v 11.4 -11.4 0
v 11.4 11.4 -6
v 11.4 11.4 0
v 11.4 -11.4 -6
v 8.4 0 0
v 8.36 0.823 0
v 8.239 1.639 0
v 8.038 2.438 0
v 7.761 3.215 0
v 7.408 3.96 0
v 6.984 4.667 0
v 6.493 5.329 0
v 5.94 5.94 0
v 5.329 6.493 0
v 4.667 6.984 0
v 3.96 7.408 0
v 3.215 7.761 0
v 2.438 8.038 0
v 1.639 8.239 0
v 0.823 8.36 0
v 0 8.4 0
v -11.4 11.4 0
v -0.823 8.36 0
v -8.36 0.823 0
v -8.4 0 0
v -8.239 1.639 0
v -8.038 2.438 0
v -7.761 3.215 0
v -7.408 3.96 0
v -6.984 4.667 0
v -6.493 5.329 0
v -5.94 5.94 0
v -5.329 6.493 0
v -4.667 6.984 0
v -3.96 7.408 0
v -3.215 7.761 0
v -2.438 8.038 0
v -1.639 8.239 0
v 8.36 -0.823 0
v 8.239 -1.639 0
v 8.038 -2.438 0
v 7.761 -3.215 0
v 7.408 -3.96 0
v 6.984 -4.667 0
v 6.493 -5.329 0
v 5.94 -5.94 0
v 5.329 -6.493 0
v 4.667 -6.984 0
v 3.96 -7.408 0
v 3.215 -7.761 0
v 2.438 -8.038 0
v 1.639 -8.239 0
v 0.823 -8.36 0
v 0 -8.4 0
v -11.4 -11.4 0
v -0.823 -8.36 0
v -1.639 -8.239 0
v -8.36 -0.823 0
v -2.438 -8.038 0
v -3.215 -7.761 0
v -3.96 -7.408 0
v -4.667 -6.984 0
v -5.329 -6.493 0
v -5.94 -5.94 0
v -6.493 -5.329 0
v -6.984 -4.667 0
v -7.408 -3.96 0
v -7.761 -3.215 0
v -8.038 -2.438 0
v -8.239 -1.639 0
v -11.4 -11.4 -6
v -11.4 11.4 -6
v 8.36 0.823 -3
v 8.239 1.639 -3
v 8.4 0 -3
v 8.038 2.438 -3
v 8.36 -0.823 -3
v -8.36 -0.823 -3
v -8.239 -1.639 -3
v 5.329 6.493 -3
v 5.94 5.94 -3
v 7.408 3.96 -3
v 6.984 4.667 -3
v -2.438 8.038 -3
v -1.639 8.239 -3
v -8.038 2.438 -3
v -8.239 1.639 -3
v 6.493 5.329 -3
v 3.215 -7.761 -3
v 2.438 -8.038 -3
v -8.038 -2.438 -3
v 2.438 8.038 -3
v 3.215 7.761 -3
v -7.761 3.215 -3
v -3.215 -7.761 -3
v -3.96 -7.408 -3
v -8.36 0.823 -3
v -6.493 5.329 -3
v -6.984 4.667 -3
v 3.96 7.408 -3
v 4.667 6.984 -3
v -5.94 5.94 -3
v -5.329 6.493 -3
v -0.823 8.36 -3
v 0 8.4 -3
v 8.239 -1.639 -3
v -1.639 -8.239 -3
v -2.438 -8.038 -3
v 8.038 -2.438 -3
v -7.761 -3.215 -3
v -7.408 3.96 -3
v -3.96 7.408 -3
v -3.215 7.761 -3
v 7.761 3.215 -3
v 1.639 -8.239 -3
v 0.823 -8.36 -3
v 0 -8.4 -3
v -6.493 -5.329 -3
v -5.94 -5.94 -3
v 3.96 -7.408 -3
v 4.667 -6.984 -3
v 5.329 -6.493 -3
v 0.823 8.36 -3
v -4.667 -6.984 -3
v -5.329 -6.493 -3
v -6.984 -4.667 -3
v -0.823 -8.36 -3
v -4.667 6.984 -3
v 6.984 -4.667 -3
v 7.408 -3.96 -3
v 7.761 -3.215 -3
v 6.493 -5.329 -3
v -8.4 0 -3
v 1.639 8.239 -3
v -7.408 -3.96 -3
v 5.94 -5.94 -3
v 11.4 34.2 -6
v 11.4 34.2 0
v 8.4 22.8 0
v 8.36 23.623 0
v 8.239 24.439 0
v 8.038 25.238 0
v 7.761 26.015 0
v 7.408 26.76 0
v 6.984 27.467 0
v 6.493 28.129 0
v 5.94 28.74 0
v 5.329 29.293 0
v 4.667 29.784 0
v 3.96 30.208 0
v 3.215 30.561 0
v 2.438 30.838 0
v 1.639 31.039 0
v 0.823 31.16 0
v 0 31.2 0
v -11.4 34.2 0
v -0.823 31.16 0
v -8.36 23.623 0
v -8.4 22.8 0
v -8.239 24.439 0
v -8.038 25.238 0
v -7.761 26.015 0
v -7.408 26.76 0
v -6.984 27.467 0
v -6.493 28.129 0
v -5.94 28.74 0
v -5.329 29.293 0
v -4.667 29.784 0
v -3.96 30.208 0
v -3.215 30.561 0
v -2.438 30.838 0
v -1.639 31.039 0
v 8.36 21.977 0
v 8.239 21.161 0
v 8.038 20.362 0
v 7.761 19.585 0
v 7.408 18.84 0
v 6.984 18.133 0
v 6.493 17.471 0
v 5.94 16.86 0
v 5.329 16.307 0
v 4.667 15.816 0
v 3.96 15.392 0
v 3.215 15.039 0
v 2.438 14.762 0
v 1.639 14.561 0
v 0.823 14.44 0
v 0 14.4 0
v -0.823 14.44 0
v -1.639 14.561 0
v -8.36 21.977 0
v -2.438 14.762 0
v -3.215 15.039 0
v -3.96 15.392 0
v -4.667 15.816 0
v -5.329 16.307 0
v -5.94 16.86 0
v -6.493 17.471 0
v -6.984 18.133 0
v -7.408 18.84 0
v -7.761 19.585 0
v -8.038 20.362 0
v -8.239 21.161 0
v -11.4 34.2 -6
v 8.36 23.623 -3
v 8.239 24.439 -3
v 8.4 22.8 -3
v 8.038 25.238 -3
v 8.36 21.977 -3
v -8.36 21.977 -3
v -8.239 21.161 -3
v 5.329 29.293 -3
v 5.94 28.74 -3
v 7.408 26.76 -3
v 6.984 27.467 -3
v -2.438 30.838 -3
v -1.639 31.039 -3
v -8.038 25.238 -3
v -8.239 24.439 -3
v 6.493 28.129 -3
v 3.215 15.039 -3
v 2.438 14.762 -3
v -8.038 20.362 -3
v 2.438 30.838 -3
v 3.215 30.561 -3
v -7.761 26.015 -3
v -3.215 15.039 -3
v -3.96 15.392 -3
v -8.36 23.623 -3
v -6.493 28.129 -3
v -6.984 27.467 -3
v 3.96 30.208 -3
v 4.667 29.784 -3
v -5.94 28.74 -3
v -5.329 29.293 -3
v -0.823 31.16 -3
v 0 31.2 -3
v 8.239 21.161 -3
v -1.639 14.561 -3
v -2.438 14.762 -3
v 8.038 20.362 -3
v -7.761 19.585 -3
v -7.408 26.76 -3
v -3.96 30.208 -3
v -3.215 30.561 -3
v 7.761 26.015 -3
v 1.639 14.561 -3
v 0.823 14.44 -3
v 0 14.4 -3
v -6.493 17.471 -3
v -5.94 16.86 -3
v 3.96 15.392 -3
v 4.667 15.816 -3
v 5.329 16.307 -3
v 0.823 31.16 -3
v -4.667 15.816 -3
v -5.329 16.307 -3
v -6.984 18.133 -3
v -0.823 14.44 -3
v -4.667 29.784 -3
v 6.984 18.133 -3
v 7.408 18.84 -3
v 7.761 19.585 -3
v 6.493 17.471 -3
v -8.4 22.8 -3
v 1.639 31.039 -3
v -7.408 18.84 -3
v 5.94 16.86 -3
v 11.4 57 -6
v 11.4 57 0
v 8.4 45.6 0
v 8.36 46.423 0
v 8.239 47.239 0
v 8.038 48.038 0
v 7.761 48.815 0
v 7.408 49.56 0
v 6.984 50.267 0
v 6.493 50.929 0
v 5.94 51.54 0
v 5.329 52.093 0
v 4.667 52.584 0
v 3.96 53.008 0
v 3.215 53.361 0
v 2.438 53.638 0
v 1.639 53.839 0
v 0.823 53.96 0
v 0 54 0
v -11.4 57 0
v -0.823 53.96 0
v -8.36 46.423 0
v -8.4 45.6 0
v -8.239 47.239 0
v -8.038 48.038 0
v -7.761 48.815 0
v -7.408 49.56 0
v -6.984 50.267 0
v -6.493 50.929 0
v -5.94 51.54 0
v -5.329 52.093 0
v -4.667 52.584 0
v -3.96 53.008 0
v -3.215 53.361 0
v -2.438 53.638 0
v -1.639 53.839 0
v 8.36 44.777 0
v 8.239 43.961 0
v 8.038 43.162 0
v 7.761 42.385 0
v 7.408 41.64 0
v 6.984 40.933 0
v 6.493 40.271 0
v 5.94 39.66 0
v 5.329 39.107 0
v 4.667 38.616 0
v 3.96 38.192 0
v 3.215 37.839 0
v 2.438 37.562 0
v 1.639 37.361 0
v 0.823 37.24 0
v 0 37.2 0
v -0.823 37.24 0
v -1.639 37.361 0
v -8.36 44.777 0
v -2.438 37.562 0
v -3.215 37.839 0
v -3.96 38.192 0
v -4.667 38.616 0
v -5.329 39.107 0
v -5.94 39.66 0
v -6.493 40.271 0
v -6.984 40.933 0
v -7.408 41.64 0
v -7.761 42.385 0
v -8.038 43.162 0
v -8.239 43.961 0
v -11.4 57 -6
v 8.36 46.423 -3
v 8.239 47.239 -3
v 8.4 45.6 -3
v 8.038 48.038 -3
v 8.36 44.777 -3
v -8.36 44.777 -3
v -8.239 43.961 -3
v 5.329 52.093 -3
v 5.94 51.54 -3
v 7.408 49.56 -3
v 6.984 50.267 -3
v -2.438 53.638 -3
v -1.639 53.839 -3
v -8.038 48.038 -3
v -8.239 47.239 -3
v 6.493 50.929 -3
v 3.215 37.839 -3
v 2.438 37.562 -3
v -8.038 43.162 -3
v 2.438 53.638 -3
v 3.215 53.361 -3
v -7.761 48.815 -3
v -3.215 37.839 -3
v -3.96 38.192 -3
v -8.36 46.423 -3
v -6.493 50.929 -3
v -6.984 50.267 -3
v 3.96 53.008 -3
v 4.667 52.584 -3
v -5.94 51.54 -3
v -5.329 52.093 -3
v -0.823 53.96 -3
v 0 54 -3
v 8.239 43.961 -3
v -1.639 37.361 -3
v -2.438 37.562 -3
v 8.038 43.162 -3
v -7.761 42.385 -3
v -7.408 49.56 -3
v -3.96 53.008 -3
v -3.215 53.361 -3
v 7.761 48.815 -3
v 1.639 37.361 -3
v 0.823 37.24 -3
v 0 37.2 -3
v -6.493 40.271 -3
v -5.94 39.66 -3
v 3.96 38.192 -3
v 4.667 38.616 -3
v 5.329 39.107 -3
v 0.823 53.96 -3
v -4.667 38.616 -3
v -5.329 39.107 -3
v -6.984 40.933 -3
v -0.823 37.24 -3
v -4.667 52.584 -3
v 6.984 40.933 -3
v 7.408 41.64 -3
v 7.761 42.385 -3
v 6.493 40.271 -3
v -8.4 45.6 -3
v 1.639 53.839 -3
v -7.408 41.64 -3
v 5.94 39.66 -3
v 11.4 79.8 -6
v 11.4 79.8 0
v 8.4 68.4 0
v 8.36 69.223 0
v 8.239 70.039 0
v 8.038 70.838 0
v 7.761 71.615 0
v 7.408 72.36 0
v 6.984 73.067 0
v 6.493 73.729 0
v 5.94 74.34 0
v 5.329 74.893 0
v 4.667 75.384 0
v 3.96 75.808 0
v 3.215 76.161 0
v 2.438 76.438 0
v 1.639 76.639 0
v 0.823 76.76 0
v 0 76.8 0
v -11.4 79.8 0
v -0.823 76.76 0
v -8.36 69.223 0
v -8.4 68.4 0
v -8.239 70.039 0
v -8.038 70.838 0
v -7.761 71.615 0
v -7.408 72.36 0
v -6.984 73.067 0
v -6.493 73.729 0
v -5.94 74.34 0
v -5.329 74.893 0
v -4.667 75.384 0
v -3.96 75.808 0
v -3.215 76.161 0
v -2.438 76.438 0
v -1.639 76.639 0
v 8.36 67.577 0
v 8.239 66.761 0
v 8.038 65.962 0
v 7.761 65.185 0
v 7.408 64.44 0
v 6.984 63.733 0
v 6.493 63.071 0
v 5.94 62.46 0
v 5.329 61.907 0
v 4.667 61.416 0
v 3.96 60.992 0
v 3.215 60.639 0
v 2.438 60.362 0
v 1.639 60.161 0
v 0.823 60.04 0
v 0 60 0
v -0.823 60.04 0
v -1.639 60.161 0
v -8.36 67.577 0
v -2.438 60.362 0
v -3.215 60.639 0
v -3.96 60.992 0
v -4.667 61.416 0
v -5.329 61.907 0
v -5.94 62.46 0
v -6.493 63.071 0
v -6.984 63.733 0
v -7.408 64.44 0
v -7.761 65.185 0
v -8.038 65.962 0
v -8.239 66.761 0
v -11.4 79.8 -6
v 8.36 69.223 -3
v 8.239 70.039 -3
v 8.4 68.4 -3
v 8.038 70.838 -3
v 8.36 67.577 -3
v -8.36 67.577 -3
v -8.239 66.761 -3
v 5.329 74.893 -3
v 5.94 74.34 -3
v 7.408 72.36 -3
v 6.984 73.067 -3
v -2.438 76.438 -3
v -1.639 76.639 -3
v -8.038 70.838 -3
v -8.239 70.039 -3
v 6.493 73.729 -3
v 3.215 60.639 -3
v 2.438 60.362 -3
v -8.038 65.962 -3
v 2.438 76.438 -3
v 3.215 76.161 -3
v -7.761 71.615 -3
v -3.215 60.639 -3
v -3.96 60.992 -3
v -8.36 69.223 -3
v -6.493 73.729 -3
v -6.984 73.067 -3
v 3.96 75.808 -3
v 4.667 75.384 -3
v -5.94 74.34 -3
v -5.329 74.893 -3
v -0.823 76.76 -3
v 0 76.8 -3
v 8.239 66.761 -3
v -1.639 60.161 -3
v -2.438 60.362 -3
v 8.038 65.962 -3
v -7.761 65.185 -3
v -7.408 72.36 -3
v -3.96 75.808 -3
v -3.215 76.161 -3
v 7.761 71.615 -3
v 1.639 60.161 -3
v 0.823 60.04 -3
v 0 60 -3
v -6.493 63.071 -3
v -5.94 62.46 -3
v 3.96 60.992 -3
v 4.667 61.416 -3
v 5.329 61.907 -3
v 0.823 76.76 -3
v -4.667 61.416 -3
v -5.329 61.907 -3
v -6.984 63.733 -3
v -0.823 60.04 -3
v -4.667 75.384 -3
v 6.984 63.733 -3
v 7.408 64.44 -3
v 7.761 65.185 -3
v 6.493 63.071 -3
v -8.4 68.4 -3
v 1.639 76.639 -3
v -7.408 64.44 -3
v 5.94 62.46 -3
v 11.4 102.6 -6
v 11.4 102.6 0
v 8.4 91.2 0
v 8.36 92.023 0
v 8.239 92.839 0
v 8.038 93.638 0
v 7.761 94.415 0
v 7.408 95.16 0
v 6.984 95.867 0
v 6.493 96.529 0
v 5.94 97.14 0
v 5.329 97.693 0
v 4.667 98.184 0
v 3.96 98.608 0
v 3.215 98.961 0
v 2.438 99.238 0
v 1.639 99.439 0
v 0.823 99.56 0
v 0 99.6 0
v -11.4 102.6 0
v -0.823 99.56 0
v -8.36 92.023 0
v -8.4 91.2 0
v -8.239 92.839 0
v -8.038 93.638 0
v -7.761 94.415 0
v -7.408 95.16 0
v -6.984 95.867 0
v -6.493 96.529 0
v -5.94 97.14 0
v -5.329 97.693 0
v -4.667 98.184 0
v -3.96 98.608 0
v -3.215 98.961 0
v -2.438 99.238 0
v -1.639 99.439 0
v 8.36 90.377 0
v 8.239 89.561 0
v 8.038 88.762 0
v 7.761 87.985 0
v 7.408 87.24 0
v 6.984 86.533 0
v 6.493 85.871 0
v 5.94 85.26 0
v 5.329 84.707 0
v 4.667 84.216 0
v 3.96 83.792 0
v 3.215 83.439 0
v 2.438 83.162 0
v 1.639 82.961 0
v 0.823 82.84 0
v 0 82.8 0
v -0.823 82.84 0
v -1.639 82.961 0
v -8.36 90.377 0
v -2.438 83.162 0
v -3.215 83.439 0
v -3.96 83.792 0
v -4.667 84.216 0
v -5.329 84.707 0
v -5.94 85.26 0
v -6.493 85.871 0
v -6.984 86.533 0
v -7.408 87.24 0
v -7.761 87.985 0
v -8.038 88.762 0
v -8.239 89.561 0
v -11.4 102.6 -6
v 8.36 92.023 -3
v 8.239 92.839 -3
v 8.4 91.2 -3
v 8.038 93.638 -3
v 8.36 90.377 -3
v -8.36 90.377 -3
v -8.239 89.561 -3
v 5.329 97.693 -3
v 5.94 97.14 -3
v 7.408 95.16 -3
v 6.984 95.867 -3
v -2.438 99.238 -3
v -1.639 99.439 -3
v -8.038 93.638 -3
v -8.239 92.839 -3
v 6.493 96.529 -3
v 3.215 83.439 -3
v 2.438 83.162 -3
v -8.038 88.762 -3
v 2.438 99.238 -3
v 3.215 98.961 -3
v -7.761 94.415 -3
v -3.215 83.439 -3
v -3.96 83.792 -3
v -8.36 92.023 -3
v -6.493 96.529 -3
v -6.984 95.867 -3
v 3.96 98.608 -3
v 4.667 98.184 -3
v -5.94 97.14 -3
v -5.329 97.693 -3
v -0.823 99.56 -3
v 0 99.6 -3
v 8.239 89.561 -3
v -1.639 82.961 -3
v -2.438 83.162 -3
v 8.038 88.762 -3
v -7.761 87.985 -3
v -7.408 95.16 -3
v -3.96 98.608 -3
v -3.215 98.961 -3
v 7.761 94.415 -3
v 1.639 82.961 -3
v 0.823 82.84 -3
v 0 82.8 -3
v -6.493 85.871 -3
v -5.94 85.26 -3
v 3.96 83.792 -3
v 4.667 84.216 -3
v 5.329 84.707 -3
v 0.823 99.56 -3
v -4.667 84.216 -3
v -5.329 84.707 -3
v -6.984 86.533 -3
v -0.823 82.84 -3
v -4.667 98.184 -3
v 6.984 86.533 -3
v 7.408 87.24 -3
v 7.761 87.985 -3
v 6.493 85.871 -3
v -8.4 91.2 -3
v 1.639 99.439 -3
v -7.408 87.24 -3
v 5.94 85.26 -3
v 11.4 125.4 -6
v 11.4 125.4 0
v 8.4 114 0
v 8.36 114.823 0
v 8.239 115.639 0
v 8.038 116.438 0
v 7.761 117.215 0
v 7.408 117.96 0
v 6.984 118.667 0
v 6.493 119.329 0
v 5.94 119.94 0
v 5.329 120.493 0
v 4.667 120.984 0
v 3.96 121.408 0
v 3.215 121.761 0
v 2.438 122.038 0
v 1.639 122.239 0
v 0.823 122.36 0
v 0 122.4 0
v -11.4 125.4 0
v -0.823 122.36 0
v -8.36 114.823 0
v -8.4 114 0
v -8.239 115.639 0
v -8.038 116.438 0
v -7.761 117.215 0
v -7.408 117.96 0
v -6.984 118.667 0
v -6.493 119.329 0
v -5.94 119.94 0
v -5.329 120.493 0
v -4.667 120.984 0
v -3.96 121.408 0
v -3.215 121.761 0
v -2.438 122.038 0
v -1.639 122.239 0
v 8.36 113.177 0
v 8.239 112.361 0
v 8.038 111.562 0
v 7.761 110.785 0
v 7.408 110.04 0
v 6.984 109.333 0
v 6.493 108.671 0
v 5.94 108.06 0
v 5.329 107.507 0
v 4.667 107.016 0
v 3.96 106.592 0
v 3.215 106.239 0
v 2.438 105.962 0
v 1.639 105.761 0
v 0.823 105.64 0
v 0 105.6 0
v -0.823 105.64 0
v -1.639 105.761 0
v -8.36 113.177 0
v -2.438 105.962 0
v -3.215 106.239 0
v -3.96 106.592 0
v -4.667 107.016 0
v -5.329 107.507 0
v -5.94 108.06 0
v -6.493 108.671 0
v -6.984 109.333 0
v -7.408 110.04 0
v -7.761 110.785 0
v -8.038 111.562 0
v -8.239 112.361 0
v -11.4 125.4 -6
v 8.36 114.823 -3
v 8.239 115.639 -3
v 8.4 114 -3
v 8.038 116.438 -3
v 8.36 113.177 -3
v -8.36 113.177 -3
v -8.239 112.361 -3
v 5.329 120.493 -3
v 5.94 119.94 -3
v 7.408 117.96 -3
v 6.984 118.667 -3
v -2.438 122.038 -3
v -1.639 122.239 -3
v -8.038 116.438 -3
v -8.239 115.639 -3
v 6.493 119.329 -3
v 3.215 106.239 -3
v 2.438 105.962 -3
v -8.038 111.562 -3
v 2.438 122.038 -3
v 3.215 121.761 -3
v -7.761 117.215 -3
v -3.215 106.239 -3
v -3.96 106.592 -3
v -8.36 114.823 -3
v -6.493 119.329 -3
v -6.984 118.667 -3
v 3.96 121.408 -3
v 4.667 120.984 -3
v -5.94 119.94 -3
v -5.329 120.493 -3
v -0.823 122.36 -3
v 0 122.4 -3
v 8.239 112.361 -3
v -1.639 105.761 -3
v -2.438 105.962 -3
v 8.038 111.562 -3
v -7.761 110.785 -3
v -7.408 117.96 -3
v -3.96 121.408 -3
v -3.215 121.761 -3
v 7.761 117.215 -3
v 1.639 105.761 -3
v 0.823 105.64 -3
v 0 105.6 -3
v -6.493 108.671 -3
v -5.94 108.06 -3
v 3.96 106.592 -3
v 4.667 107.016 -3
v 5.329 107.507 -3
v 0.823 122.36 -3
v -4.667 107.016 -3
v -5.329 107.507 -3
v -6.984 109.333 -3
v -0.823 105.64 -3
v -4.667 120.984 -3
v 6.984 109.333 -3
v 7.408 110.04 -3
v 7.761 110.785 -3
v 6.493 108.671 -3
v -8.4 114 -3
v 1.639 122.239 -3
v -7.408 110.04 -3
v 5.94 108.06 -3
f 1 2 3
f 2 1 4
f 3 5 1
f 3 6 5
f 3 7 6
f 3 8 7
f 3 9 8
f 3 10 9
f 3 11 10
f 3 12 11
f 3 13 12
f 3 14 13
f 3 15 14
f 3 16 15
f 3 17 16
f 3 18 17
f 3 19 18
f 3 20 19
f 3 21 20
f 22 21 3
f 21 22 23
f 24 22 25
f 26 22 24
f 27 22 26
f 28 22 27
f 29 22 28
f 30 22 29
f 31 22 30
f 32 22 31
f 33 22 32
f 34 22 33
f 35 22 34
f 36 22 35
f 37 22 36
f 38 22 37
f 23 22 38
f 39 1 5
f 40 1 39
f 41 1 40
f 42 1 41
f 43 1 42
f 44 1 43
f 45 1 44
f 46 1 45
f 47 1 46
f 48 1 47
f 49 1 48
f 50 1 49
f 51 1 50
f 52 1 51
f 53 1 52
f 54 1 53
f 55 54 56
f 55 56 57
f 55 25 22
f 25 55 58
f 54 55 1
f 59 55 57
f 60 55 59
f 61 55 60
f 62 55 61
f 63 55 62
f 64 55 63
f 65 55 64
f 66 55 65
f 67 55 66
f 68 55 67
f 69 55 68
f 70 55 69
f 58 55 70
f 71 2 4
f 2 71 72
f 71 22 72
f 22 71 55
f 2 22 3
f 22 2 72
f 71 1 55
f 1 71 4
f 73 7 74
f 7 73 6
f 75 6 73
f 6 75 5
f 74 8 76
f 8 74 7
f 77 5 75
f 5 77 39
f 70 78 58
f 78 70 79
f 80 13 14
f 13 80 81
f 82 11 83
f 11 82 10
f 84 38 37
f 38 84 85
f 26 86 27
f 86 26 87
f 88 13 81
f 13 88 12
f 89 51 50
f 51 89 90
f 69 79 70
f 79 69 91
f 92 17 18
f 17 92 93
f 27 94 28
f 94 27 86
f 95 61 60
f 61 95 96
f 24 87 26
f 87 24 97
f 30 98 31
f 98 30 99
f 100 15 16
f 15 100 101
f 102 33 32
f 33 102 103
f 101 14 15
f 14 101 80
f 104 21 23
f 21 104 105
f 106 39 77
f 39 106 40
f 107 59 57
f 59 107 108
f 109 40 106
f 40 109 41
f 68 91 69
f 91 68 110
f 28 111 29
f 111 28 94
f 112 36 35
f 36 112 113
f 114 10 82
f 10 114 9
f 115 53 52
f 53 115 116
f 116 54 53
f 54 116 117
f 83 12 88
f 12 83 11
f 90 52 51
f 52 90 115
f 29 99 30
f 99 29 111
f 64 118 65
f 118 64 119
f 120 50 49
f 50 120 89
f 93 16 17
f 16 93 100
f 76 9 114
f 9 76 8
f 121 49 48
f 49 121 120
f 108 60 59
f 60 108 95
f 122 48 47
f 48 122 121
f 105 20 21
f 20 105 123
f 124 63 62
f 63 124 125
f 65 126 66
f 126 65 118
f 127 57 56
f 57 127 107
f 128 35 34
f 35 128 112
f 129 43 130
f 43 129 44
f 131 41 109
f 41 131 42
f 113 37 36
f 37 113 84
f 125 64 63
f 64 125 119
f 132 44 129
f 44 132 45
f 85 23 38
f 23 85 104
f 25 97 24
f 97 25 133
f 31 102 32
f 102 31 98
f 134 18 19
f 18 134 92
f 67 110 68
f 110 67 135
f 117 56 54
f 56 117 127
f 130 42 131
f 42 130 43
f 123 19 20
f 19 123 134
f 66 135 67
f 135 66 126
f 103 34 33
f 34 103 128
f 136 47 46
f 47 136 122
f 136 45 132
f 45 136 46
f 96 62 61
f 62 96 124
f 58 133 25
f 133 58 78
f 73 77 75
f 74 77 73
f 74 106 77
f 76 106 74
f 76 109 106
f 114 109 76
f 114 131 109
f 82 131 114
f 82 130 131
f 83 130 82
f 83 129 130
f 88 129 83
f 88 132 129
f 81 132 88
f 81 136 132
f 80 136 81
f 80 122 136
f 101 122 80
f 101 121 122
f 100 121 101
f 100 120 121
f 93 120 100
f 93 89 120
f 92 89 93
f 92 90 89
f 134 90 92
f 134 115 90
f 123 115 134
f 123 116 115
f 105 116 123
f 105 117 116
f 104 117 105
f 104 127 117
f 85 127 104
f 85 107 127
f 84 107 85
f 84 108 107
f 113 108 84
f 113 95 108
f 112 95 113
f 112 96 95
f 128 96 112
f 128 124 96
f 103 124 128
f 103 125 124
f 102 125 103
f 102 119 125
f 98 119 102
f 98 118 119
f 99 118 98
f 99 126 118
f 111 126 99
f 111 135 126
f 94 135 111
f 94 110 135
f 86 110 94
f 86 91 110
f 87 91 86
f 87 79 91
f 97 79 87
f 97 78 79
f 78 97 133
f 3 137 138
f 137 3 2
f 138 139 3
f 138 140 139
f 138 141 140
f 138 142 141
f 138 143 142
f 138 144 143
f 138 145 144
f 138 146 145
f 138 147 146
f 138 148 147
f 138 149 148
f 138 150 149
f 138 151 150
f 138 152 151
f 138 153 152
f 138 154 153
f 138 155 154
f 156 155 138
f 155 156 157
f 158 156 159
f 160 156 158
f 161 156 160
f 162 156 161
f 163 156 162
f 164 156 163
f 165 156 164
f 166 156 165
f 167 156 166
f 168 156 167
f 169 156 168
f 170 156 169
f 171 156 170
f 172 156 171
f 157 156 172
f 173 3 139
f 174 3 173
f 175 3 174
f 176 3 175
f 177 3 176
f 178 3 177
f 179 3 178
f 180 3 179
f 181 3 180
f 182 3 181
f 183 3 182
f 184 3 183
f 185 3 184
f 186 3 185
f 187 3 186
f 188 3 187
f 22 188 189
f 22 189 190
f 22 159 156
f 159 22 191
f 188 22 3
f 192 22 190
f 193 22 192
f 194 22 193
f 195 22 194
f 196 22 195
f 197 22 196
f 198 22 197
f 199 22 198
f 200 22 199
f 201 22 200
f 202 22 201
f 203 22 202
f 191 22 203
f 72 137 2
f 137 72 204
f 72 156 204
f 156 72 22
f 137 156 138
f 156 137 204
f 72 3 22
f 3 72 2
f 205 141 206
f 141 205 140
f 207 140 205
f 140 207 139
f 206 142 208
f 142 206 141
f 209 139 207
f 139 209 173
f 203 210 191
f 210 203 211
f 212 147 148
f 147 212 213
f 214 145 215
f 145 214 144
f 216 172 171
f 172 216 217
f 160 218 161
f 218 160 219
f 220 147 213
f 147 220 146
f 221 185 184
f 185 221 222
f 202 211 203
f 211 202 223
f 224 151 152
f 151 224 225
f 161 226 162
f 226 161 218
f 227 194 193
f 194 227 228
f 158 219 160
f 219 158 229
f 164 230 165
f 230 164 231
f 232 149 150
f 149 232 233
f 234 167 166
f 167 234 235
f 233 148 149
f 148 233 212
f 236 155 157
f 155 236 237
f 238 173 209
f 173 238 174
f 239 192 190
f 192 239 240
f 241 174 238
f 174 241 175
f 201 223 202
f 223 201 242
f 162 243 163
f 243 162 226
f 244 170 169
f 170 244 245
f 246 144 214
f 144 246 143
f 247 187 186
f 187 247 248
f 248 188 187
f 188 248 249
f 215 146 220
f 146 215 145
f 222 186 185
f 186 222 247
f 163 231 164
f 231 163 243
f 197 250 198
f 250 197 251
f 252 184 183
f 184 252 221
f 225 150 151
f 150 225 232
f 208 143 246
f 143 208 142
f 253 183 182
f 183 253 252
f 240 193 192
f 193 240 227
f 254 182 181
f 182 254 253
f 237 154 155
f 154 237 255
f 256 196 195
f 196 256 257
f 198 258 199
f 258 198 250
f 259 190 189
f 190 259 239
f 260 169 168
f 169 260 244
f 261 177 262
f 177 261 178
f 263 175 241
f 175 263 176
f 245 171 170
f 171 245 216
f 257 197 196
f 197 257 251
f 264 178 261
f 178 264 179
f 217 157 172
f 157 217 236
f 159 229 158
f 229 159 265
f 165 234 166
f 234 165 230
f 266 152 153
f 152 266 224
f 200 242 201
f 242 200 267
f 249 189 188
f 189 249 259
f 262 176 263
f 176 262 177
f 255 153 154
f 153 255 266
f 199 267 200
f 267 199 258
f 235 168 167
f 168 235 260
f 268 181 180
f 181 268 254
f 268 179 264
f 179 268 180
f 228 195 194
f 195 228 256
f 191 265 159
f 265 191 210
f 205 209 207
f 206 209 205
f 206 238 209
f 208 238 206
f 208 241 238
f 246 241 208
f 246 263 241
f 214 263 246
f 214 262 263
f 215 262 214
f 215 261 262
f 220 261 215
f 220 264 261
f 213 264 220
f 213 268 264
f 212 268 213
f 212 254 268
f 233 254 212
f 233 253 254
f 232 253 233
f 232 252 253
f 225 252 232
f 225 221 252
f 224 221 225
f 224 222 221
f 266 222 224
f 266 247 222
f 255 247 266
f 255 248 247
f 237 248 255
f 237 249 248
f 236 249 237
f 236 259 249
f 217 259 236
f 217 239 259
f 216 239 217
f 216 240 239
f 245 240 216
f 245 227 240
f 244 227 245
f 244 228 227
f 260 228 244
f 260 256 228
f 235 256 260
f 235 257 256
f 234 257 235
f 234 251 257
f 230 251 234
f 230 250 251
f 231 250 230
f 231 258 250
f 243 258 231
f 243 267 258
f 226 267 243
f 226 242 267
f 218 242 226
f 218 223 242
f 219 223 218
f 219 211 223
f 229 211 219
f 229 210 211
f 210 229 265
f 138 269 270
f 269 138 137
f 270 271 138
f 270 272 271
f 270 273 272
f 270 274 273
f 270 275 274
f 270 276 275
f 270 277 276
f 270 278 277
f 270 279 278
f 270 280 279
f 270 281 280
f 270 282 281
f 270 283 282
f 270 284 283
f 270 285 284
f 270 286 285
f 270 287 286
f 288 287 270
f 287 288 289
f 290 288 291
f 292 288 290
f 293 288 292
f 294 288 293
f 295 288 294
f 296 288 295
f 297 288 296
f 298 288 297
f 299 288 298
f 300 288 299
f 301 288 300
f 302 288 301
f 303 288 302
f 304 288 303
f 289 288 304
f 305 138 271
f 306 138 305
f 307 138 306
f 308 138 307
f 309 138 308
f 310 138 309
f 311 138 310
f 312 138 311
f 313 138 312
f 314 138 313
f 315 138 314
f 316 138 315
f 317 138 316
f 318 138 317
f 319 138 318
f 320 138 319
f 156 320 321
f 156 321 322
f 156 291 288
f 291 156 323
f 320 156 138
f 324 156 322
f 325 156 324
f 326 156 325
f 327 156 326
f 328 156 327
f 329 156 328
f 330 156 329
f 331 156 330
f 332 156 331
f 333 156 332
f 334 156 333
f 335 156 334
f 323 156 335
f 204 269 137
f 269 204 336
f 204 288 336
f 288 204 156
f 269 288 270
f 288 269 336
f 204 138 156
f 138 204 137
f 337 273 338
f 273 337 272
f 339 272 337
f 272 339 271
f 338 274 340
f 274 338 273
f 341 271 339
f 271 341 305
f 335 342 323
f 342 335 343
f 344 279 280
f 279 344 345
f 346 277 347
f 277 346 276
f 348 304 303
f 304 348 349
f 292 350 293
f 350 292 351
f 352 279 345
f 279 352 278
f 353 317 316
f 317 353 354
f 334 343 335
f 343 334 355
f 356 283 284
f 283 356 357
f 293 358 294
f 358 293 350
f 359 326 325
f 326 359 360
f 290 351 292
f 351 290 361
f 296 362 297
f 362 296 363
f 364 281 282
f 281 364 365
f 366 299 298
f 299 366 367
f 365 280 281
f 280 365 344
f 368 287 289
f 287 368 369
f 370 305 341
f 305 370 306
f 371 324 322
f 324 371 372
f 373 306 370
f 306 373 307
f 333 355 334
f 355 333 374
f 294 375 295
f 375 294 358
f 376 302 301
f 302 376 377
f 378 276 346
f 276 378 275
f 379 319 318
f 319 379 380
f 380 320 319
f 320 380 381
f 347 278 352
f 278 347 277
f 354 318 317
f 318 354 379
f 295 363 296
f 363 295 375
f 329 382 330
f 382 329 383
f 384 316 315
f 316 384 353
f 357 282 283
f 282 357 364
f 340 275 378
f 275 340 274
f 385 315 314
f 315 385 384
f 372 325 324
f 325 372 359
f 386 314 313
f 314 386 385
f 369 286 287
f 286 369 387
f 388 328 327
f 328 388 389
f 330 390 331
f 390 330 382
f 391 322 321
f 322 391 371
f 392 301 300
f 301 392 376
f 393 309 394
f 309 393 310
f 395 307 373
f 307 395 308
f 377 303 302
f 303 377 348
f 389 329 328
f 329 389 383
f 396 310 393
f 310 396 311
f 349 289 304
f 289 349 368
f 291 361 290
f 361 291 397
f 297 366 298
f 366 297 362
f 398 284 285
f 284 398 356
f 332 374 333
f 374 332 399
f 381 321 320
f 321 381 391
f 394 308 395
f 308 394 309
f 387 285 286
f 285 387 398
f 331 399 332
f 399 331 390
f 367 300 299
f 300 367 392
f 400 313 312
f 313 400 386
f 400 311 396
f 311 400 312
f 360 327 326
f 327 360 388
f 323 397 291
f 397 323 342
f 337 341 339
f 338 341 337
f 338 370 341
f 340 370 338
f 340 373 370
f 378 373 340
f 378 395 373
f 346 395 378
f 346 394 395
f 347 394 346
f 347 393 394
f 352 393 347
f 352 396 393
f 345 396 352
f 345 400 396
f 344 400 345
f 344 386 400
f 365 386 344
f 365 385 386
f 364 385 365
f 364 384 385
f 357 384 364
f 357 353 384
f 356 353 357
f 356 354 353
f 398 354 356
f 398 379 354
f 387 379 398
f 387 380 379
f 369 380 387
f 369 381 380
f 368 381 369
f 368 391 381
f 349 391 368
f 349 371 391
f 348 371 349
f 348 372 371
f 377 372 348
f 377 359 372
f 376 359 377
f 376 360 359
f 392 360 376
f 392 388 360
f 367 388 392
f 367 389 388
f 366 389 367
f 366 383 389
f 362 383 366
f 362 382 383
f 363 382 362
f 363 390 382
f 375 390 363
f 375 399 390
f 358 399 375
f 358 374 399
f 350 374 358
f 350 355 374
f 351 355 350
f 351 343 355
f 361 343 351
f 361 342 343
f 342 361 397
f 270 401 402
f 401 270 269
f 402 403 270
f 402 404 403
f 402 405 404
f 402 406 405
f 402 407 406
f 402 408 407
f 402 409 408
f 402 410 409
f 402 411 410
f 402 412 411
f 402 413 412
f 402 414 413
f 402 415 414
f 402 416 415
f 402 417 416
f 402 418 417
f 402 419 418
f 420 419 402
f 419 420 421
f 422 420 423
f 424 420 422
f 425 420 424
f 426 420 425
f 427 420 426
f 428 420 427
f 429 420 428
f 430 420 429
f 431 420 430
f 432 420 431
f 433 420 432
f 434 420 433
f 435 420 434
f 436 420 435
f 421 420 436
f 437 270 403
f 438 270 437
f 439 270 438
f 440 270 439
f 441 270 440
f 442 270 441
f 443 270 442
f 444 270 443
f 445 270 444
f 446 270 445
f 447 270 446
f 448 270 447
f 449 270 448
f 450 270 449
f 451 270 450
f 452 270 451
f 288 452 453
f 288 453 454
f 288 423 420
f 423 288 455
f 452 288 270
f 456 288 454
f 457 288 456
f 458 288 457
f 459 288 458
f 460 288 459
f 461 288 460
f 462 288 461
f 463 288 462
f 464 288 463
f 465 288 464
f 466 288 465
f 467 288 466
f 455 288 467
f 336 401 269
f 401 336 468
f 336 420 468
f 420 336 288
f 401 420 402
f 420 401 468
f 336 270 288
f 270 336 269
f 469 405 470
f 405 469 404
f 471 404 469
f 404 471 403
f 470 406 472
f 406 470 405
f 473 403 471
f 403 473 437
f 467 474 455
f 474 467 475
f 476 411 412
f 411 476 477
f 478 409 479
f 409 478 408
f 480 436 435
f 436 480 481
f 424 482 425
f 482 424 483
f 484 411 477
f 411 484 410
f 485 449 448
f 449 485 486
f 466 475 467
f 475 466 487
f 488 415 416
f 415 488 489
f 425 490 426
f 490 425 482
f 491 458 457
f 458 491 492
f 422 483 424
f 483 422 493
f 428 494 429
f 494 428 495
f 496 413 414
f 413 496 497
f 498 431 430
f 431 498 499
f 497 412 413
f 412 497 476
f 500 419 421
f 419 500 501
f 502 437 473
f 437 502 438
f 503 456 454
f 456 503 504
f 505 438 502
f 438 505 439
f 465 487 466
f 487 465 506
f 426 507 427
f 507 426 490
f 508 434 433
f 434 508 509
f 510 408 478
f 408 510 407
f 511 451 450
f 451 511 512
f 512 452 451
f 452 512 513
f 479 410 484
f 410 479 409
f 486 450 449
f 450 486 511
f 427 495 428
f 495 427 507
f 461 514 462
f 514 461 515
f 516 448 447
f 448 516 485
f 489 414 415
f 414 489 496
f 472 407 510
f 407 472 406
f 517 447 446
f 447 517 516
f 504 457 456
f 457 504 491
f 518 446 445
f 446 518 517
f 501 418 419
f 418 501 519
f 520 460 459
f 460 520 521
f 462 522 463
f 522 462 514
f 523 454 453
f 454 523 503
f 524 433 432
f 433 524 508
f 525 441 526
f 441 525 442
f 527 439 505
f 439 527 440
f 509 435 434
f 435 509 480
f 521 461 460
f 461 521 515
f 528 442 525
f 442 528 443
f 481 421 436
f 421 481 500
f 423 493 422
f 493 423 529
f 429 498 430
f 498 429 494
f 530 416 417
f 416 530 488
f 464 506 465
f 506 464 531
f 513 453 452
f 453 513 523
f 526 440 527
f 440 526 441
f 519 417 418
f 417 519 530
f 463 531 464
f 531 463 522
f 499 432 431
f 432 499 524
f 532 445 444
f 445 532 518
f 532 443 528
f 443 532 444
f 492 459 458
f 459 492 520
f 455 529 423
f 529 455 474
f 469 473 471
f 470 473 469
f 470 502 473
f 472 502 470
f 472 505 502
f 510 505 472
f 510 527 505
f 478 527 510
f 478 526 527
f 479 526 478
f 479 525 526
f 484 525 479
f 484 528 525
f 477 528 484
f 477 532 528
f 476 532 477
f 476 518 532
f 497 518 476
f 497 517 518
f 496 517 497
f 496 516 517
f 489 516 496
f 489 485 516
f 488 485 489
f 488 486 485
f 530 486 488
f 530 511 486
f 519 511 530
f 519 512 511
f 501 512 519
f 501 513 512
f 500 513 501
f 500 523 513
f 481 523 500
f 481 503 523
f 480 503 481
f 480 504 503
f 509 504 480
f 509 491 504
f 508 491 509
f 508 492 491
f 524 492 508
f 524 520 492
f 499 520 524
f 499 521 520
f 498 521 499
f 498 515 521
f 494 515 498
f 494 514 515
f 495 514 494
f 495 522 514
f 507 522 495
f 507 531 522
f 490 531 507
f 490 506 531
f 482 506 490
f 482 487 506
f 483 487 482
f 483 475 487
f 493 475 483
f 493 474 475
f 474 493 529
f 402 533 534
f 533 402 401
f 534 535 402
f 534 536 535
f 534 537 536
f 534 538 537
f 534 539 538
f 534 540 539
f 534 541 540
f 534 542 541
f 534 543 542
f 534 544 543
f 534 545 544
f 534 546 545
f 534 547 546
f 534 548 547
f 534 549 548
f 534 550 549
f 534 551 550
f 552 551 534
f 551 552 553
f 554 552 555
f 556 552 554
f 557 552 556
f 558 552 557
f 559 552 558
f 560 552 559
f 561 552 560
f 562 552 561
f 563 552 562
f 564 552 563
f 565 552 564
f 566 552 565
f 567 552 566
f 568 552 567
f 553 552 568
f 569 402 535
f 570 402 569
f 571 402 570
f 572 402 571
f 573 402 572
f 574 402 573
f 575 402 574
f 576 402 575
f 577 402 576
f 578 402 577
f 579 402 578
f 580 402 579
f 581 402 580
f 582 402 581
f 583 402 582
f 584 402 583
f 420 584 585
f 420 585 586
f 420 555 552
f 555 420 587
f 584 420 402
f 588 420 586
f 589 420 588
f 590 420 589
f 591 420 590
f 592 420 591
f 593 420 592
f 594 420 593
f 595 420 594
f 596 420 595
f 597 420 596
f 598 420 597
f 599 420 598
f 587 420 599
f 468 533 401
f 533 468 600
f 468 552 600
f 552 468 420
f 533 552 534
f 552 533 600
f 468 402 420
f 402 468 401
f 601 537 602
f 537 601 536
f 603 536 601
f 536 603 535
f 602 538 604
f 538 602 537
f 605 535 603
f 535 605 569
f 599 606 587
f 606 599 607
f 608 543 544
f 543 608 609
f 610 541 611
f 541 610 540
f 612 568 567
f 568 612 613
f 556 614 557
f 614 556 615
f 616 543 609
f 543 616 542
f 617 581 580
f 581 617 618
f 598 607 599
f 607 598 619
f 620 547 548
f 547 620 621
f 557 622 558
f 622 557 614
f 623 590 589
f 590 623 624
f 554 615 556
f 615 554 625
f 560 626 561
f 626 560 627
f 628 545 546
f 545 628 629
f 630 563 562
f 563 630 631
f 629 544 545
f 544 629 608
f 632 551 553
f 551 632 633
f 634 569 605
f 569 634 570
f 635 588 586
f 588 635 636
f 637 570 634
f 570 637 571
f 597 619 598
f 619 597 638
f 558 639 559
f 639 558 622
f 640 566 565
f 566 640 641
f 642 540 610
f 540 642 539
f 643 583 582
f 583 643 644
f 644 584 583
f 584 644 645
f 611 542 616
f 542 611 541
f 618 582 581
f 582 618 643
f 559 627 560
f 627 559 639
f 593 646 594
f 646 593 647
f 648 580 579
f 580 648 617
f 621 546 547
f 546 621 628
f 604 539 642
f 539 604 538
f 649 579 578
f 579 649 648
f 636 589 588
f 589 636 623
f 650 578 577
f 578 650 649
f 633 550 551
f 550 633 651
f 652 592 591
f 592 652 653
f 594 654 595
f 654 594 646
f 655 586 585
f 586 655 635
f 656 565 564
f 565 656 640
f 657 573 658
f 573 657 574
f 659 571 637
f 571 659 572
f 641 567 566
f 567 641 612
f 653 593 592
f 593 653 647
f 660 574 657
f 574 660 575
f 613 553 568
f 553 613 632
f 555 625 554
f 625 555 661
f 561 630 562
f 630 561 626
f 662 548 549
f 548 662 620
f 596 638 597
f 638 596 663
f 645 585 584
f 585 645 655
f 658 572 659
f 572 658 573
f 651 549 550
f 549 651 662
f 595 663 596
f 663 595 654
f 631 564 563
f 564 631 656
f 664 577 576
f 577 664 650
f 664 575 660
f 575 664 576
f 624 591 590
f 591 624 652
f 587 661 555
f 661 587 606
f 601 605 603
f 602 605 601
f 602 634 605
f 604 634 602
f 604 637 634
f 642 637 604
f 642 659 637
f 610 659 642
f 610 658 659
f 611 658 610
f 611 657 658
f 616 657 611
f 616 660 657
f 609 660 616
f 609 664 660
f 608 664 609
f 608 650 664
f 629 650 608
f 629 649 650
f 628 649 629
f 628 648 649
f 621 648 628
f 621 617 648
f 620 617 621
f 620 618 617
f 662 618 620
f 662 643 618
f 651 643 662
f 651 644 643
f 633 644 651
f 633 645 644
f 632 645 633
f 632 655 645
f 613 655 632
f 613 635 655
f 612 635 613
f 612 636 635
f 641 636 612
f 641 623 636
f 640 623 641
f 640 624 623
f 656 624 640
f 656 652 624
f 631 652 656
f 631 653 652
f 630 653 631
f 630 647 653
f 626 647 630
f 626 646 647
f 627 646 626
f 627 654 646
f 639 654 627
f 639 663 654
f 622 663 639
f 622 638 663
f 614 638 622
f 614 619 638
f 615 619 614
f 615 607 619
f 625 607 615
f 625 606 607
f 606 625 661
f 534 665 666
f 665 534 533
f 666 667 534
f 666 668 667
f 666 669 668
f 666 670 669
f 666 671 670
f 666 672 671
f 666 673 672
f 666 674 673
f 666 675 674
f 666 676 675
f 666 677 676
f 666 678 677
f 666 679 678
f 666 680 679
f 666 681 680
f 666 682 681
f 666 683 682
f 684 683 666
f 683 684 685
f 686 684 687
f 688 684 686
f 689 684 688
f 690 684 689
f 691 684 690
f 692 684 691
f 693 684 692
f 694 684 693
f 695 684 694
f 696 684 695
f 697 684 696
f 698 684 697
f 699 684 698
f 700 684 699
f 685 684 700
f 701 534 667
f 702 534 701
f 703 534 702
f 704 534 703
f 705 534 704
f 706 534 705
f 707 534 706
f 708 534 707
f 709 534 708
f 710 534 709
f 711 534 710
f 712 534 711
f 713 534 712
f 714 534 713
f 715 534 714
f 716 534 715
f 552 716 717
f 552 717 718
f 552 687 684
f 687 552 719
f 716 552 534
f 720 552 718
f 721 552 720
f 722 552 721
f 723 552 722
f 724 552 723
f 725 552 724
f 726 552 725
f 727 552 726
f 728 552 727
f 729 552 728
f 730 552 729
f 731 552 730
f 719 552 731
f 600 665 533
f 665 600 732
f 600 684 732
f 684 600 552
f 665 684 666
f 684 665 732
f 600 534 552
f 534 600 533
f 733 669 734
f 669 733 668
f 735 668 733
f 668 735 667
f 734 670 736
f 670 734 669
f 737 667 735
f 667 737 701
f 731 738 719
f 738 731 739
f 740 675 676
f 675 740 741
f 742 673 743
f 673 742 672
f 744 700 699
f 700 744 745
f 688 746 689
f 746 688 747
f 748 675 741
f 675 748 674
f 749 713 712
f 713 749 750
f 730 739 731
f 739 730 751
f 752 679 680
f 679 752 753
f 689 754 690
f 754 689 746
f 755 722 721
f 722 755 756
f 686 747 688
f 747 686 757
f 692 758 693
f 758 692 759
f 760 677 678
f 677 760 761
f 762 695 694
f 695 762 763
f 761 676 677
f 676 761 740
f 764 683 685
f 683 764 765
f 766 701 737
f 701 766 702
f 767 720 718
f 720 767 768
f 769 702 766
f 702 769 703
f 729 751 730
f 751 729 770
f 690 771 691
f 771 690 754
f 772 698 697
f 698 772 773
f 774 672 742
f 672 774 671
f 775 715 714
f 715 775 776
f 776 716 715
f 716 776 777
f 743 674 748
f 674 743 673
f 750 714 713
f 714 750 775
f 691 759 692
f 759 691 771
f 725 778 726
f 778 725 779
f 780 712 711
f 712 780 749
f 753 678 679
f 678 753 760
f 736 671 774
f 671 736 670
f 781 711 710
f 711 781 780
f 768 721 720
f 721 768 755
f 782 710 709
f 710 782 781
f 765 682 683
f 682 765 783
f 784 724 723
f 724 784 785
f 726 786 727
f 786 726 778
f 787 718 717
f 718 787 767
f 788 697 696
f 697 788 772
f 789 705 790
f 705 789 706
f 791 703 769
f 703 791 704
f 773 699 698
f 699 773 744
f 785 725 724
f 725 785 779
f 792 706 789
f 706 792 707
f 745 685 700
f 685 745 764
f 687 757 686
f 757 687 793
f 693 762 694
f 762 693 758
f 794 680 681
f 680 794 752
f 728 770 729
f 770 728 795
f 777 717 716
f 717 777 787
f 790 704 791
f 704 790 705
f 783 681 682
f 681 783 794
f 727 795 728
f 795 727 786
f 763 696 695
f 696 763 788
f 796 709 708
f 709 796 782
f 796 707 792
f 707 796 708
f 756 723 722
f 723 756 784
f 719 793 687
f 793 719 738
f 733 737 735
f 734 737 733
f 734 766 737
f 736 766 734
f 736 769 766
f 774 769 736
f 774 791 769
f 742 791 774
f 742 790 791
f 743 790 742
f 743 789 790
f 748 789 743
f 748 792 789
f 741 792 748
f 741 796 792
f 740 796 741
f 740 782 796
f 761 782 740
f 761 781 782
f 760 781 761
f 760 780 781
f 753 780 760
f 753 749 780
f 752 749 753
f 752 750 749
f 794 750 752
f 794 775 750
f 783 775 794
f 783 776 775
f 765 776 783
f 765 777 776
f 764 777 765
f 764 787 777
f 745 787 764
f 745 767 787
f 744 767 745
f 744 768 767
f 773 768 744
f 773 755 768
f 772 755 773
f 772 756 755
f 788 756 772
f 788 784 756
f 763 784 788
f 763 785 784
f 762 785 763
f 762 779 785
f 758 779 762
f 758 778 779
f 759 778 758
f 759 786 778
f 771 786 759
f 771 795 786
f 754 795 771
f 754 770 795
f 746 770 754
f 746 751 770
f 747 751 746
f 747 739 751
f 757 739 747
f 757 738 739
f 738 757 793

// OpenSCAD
// Generated by SolidPython 1.1.3 on 2024-01-09 10:38:46


union() {
	translate(v = [0.0000000000, 0.0000000000, 0.0000000000]) {
		difference() {
			translate(v = [0, 0, -3.0000000000]) {
				cube(center = true, size = [22.8000000000, 22.8000000000, 6]);
			}
			translate(v = [0, 0, -1.5000000000]) {
				cylinder($fn = 64, center = true, h = 3, r = 8.4000000000);
			}
		}
	}
	translate(v = [0.0000000000, 22.8000000000, 0.0000000000]) {
		difference() {
			translate(v = [0, 0, -3.0000000000]) {
				cube(center = true, size = [22.8000000000, 22.8000000000, 6]);
			}
			translate(v = [0, 0, -1.5000000000]) {
				cylinder($fn = 64, center = true, h = 3, r = 8.4000000000);
			}
		}
	}
	translate(v = [0.0000000000, 45.6000000000, 0.0000000000]) {
		difference() {
			translate(v = [0, 0, -3.0000000000]) {
				cube(center = true, size = [22.8000000000, 22.8000000000, 6]);
			}
			translate(v = [0, 0, -1.5000000000]) {
				cylinder($fn = 64, center = true, h = 3, r = 8.4000000000);
			}
		}
	}
	translate(v = [0.0000000000, 68.4000000000, 0.0000000000]) {
		difference() {
			translate(v = [0, 0, -3.0000000000]) {
				cube(center = true, size = [22.8000000000, 22.8000000000, 6]);
			}
			translate(v = [0, 0, -1.5000000000]) {
				cylinder($fn = 64, center = true, h = 3, r = 8.4000000000);
			}
		}
	}
	translate(v = [0.0000000000, 91.2000000000, 0.0000000000]) {
		difference() {
			translate(v = [0, 0, -3.0000000000]) {
				cube(center = true, size = [22.8000000000, 22.8000000000, 6]);
			}
			translate(v = [0, 0, -1.5000000000]) {
				cylinder($fn = 64, center = true, h = 3, r = 8.4000000000);
			}
		}
	}
	translate(v = [0.0000000000, 114.0000000000, 0.0000000000]) {
		difference() {
			translate(v = [0, 0, -3.0000000000]) {
				cube(center = true, size = [22.8000000000, 22.8000000000, 6]);
			}
			translate(v = [0, 0, -1.5000000000]) {
				cylinder($fn = 64, center = true, h = 3, r = 8.4000000000);
			}
		}
	}
}
/***********************************************
*********      SolidPython code:      **********
************************************************
 
import solid
import os
import os.path as osp
from make_device import make_unit_array

def save_model(model,base_path,base_name):
    if not osp.exists(base_path):
        os.makedirs(base_path)
    scad_path=osp.join(base_path,base_name+".scad")
    solid.scad_render_to_file(model,osp.join(scad_path))


def create_rack(item_diameter,item_thickness,rack_height,base_name,base_path,item_diameter_extra=0,item_thickness_extra=0,rack_size_extra=0,grid_size=[1,1]):
    holder_size=(item_diameter+item_diameter_extra+rack_size_extra,item_diameter+item_diameter_extra+rack_size_extra)
    dims = [*holder_size, 0]
    height= item_thickness+item_thickness_extra
    radius=(item_diameter+item_diameter_extra)/2.0
    hole = solid.cylinder(r=radius, h=height, segments=64, center = True)
    hole = solid.translate([0,0,-height/2.0])(hole)
    holder = solid.cube((*holder_size,rack_height), center = True)
    holder = solid.translate([0,0,-rack_height/2.0])(holder)
    holder = solid.difference()(holder,hole)
    holder=make_unit_array(holder,dims,grid_size)
    save_model(holder,base_path,base_name)

version="v2"
base_path="./designs/plasma_racks/4mm_well_0.5inch_diam_device_"+version+"/"
#coverslip glass holder
item_diameter=18
item_diameter_extra=1
item_thickness=0.16
item_thickness_extra=0.04
rack_height=4
rack_size_extra=6
base_name="18CIR-1_rack_"+version
grid_size=[1,6]
create_rack(item_diameter,item_thickness,rack_height,base_name,base_path,item_diameter_extra=item_diameter_extra,item_thickness_extra=item_thickness_extra,rack_size_extra=rack_size_extra,grid_size=grid_size)

#0.5" diam device holder
item_diameter=12.8
item_diameter_extra=4
item_thickness=3
item_thickness_extra=0
rack_height=6
rack_size_extra=6
base_name="0.5inch_4mm_device_rack_"+version
grid_size=[1,6]
create_rack(item_diameter,item_thickness,rack_height,base_name,base_path,item_diameter_extra=item_diameter_extra,item_thickness_extra=item_thickness_extra,rack_size_extra=rack_size_extra,grid_size=grid_size)

 
 
************************************************/
